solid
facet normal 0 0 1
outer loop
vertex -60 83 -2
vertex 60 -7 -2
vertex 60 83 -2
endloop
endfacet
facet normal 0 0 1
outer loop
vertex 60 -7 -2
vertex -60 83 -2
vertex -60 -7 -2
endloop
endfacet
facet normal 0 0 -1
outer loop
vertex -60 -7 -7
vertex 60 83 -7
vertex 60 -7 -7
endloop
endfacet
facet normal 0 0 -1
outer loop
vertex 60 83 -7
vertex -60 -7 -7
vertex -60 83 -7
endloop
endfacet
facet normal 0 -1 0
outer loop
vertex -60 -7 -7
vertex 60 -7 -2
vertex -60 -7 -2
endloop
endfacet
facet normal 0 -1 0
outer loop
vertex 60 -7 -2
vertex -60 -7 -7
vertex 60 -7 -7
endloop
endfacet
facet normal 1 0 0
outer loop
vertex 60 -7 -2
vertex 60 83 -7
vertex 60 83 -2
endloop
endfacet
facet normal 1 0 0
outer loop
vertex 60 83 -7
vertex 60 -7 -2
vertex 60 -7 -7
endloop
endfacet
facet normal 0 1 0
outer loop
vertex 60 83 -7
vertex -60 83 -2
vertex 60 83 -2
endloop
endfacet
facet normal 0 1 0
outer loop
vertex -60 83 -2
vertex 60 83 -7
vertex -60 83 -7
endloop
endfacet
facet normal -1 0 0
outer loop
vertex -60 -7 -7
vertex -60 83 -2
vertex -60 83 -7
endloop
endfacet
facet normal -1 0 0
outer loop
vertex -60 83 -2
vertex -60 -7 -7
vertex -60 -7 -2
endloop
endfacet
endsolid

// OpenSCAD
module nok() {
  txt_end = "終";
  txt_seisaku = "制作・著作";
  txt_bar = "━━━━━";
  txt_nok = "Ⓝ◯Ⓚ";

  font_name = "Hiragino Mincho ProN";
  font_size = 14;

  translate([0, 60, 0])
  text(txt_end, font = font_name, size = font_size, halign = "center");

  translate([0, 40, 0])
  text(txt_seisaku, font = font_name, size = font_size, halign = "center");

  translate([0, 20, 0])
  text(txt_bar, font = font_name, size = font_size, halign = "center");

  translate([0, 0, 0])
  text(txt_nok, font = font_name, size = font_size, halign = "center");
}

module plate() {
  translate([0, 38, -4.5])
  cube([120, 90, 5], center = true);
}

difference() {
  plate();

  translate([0, 0, -2])
  nok();
}

// viewport settings
$vpr = [-30, 30, 0];
$vpt = [5, 40, 0];
$vpd = 300;
